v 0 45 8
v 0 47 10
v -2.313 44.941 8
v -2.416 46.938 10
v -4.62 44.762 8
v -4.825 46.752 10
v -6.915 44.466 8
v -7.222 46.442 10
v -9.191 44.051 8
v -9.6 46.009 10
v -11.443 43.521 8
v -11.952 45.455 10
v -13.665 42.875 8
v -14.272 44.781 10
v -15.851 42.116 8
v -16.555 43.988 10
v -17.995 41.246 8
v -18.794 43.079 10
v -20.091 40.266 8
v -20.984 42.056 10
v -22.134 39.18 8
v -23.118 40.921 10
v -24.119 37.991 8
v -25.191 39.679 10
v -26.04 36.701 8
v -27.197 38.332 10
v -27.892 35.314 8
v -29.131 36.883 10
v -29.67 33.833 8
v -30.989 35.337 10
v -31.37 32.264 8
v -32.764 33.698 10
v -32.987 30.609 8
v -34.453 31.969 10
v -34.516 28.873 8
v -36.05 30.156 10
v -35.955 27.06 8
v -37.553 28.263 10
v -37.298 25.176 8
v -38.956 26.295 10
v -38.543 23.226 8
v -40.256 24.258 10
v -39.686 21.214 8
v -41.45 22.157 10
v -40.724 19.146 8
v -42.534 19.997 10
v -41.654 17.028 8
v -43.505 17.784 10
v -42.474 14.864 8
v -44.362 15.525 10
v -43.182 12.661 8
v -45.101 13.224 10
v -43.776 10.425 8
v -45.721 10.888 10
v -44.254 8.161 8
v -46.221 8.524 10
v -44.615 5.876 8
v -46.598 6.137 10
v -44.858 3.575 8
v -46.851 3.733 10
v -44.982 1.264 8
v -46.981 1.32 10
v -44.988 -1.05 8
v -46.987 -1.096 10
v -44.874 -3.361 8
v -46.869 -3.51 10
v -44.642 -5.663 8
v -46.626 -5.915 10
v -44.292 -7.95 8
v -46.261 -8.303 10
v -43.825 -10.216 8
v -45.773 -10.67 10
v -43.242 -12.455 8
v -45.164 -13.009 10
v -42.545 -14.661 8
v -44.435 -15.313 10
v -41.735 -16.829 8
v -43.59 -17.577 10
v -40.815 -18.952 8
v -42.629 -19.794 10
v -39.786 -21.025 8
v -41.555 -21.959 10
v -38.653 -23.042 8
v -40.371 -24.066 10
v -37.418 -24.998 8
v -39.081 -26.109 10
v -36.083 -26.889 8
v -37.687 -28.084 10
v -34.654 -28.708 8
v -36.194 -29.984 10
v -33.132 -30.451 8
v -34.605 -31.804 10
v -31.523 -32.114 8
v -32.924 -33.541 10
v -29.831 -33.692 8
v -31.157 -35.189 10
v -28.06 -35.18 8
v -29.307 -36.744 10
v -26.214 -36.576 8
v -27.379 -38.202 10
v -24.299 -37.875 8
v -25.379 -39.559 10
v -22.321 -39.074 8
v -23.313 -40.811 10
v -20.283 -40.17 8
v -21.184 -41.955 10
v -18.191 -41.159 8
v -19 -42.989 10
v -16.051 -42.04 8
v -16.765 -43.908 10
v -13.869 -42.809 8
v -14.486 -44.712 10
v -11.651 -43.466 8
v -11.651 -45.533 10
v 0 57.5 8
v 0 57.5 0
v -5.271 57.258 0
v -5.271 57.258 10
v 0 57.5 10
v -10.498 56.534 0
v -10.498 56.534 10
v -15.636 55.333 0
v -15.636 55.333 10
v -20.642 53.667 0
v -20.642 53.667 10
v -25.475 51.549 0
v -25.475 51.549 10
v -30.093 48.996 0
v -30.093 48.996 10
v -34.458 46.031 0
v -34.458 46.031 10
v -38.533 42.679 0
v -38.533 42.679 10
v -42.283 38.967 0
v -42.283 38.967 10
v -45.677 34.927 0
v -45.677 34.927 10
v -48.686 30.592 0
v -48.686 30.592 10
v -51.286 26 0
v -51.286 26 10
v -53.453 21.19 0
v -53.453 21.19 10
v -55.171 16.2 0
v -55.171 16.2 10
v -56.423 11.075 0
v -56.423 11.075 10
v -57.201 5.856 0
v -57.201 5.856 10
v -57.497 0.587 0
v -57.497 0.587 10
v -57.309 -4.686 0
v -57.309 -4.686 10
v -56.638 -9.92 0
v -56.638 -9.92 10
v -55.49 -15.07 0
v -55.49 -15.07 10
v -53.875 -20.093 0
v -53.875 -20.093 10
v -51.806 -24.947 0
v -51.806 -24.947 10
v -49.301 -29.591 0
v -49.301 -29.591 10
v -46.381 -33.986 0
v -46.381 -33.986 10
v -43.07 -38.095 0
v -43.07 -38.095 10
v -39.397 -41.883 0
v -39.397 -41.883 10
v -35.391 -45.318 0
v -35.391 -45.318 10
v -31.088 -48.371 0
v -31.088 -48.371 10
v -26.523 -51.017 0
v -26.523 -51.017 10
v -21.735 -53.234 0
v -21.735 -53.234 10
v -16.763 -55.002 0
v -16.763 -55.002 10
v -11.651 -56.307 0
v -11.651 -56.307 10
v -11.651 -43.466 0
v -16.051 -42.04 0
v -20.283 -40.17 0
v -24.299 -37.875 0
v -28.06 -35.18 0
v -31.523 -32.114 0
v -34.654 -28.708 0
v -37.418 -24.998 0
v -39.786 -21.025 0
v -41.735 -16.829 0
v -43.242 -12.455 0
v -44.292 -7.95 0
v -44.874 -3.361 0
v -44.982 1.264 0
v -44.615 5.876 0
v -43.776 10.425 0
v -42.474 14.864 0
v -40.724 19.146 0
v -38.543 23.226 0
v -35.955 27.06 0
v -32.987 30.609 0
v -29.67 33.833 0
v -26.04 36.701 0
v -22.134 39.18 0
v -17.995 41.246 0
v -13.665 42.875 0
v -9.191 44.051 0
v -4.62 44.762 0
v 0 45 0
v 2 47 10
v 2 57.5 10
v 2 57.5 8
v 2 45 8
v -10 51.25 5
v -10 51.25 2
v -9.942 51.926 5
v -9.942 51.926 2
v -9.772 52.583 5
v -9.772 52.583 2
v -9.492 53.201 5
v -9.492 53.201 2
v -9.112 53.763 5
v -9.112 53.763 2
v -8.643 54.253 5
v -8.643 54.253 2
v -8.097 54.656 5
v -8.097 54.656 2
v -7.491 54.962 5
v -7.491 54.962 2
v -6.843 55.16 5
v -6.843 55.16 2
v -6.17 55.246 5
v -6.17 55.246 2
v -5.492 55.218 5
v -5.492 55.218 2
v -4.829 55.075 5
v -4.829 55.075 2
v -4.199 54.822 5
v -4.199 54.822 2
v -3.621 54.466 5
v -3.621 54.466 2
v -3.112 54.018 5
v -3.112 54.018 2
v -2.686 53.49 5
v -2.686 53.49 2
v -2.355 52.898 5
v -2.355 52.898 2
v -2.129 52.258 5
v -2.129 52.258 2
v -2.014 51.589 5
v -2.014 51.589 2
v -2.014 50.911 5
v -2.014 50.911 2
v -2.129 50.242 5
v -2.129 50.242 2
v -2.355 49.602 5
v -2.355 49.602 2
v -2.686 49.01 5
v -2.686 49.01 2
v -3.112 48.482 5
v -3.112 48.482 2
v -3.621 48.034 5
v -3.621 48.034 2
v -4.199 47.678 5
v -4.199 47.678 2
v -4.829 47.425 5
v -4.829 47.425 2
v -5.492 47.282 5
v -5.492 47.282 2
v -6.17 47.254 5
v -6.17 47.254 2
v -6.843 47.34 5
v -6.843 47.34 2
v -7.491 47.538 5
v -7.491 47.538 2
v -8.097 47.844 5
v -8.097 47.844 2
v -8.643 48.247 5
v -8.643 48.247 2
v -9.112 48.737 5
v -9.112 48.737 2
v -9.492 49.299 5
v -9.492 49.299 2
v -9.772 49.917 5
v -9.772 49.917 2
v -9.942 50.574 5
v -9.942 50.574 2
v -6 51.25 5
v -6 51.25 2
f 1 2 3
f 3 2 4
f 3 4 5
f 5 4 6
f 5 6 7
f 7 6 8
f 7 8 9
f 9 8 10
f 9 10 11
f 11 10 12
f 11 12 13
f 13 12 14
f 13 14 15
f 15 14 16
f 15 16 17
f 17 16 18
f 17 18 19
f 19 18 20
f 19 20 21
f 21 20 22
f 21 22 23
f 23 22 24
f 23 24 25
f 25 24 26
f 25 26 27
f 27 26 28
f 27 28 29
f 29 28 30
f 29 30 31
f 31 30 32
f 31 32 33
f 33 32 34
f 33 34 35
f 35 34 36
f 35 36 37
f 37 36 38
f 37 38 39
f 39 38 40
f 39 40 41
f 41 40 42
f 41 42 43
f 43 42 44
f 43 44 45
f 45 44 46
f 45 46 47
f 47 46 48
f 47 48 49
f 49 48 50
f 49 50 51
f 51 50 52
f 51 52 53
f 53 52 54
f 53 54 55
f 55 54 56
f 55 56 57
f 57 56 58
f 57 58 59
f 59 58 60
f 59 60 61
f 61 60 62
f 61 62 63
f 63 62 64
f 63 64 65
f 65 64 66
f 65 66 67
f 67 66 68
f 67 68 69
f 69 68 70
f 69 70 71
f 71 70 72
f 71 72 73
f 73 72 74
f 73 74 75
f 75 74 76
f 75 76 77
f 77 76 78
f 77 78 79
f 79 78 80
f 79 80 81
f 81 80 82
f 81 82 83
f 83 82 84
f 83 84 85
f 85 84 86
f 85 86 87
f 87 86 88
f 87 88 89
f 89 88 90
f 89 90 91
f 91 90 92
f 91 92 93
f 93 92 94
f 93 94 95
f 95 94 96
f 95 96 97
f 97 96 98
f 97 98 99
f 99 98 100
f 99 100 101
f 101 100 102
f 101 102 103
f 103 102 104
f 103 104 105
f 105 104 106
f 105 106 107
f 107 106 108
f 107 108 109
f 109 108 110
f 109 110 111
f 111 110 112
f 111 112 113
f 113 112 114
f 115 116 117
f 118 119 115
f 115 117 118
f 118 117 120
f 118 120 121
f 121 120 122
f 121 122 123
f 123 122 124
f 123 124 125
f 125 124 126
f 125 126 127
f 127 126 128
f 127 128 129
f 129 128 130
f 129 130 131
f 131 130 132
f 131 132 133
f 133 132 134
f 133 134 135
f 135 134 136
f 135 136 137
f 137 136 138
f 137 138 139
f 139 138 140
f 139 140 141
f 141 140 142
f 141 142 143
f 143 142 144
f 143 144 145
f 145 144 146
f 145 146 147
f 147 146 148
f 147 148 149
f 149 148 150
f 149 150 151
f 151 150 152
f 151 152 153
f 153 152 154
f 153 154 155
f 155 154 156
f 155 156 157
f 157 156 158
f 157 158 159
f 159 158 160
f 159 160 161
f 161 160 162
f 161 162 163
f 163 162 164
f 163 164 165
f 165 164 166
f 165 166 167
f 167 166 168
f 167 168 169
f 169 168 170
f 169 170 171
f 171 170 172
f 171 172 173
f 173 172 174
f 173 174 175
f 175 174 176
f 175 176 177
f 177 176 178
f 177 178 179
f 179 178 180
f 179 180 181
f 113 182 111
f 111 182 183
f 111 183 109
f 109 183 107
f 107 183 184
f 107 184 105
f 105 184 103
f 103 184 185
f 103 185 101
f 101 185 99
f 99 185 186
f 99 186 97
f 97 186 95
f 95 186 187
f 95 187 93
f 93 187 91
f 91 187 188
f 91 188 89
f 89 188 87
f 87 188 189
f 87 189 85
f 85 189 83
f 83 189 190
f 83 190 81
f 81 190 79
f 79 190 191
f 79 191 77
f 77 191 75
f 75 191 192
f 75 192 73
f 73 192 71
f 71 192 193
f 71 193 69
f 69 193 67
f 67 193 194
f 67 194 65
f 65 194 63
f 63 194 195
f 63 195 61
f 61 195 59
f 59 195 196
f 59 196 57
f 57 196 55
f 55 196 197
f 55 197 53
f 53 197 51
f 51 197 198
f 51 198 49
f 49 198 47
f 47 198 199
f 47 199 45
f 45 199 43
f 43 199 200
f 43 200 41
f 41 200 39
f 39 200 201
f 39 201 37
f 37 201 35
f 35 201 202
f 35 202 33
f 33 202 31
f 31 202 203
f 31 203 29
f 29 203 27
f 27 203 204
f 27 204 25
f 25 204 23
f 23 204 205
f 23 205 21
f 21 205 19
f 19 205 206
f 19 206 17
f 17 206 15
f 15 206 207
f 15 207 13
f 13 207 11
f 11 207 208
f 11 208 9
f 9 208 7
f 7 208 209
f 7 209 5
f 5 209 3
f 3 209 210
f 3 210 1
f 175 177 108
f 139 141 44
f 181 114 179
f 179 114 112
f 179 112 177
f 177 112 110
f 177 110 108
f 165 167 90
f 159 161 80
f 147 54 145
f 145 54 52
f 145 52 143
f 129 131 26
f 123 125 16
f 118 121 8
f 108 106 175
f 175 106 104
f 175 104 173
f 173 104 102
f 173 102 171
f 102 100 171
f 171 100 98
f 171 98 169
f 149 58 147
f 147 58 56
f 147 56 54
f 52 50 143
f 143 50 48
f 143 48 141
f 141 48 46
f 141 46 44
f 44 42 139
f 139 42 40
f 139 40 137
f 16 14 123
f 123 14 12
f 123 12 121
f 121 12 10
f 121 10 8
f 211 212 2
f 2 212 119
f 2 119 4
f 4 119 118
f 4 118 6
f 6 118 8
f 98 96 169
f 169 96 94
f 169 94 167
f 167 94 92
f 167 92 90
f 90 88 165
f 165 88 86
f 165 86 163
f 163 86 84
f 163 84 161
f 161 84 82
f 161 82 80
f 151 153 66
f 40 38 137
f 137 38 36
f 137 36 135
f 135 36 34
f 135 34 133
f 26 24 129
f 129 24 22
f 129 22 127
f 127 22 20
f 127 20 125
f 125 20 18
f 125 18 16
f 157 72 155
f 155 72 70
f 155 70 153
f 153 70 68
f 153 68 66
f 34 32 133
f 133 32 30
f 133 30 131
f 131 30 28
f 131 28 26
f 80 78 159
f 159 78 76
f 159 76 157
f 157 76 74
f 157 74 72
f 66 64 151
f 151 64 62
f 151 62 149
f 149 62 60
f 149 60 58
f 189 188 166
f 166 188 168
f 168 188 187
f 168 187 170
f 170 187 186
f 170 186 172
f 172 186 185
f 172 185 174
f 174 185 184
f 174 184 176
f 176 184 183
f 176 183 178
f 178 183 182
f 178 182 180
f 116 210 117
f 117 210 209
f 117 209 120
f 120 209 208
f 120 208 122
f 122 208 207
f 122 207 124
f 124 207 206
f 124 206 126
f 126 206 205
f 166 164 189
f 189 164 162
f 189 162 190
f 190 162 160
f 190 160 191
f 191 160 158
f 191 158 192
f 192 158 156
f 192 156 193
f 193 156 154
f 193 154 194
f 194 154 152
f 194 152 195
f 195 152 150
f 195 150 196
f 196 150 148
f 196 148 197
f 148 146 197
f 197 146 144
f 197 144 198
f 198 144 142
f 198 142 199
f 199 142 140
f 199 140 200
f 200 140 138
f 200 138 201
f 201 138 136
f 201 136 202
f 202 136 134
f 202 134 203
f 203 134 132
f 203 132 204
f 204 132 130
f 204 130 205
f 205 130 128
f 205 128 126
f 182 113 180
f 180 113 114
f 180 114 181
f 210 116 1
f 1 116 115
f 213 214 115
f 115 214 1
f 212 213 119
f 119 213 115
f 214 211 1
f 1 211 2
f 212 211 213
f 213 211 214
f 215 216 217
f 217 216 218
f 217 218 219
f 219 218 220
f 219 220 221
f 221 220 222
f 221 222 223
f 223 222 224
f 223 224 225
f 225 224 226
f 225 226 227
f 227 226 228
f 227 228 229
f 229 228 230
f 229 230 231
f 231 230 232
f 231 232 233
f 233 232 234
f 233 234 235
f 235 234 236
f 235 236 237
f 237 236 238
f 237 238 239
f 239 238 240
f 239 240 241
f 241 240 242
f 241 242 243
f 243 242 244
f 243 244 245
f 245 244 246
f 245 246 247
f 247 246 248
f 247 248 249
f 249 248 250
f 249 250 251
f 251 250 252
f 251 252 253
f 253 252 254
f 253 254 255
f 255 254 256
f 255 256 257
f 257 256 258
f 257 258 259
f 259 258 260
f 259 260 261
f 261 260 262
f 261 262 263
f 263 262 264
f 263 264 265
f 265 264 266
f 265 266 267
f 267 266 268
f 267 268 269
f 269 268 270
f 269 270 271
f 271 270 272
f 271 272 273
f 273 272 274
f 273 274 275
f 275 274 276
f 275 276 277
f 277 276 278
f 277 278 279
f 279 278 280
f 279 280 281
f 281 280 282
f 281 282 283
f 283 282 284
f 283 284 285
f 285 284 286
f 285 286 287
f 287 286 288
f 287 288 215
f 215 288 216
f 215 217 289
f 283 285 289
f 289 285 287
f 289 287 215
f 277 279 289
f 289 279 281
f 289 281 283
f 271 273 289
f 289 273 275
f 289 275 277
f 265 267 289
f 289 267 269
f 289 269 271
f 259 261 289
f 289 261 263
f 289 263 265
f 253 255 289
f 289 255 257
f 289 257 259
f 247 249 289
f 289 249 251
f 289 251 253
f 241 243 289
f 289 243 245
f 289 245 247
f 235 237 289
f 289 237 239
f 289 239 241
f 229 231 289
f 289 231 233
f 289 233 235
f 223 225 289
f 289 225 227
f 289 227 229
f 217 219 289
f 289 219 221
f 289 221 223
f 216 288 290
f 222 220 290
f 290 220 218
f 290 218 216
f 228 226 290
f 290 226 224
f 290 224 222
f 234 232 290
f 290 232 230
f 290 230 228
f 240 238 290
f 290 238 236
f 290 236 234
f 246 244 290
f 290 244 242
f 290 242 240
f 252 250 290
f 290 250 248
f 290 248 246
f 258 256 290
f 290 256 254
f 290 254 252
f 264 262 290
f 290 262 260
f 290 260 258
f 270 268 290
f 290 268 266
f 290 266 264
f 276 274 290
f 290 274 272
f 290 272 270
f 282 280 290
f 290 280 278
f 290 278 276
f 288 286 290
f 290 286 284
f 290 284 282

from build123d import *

# Parameters (mm, degrees)
SKETCH1_R           = 57.5
SKETCH1_R_2         = 45
BOSS_EXTRUDE1_DEPTH = 10
CUT_EXTRUDE2_DEPTH  = 10
CHAMFER1_SIZE       = 2
SKETCH3_W           = 124.113144638
SKETCH3_H           = 66.876500266
CUT_EXTRUDE3_DEPTH  = 10
CUT_EXTRUDE4_START  = -2
SKETCH5_R           = 4
CUT_EXTRUDE4_DEPTH  = 3
BOSS_EXTRUDE2_DEPTH = 2


with BuildPart() as part:
    # Sketch1 → Boss-Extrude1 (new body)
    with BuildSketch(Plane(origin=(0, 0, 0), x_dir=(0, 1, 0), z_dir=(0, 0, 1))):
        Circle(SKETCH1_R)
        Circle(SKETCH1_R_2, mode=Mode.SUBTRACT)
    extrude(amount=BOSS_EXTRUDE1_DEPTH)

    # Sketch2 → Cut-Extrude2 (cut)
    with BuildSketch(Plane(origin=(0, 0, 0), x_dir=(1, 0, 0), z_dir=(0, 0, -1))):
        with BuildLine():
            Line((11.650511373, 56.659857386), (11.650511373, 43.46568284))
            add(Edge.make_bspline(
                [(11.650511373, 43.46568284), (-0.679246558, 46.406413024), (-11.650511373, 43.46568284)],
                knots=[0, 0, 0, 0.575547458, 0.575547458, 0.575547458], degree=2))
            Line((-11.650511373, 43.46568284), (-11.650511373, 56.659857386))
            ThreePointArc((-11.650511373, 56.659857386), (0, 57.845257837), (11.650511373, 56.659857386))
        make_face()
    extrude(amount=-CUT_EXTRUDE2_DEPTH, mode=Mode.SUBTRACT)

    # Chamfer1
    chamfer1_edges = [part.edges().sort_by_distance(p)[0] for p in [
        (0, 45, 10),
    ]]
    chamfer(chamfer1_edges, length=CHAMFER1_SIZE)

    # Sketch3 → Cut-Extrude3 (cut)
    with BuildSketch(Plane(origin=(0, 0, 0), x_dir=(0, 1, 0), z_dir=(0, 0, 1))):
        with Locations((4.641630902, -33.438250133)):
            Rectangle(SKETCH3_W, SKETCH3_H)
    extrude(amount=CUT_EXTRUDE3_DEPTH, mode=Mode.SUBTRACT)

    # Sketch5 → Cut-Extrude4 (cut)
    with BuildSketch(Plane(origin=(0, 0, 0), x_dir=(1, 0, 0), z_dir=(0, 0, -1)).offset(CUT_EXTRUDE4_START)):
        with Locations((-6, -51.25)):
            Circle(SKETCH5_R)
    extrude(amount=-CUT_EXTRUDE4_DEPTH, mode=Mode.SUBTRACT)

    # Sketch6 → Boss-Extrude2 (add)
    with BuildSketch(Plane.YZ):
        Polygon((45, 8), (47, 10), (57.5, 10), (57.5, 8), align=None)
    extrude(amount=BOSS_EXTRUDE2_DEPTH)


solid = part.part
